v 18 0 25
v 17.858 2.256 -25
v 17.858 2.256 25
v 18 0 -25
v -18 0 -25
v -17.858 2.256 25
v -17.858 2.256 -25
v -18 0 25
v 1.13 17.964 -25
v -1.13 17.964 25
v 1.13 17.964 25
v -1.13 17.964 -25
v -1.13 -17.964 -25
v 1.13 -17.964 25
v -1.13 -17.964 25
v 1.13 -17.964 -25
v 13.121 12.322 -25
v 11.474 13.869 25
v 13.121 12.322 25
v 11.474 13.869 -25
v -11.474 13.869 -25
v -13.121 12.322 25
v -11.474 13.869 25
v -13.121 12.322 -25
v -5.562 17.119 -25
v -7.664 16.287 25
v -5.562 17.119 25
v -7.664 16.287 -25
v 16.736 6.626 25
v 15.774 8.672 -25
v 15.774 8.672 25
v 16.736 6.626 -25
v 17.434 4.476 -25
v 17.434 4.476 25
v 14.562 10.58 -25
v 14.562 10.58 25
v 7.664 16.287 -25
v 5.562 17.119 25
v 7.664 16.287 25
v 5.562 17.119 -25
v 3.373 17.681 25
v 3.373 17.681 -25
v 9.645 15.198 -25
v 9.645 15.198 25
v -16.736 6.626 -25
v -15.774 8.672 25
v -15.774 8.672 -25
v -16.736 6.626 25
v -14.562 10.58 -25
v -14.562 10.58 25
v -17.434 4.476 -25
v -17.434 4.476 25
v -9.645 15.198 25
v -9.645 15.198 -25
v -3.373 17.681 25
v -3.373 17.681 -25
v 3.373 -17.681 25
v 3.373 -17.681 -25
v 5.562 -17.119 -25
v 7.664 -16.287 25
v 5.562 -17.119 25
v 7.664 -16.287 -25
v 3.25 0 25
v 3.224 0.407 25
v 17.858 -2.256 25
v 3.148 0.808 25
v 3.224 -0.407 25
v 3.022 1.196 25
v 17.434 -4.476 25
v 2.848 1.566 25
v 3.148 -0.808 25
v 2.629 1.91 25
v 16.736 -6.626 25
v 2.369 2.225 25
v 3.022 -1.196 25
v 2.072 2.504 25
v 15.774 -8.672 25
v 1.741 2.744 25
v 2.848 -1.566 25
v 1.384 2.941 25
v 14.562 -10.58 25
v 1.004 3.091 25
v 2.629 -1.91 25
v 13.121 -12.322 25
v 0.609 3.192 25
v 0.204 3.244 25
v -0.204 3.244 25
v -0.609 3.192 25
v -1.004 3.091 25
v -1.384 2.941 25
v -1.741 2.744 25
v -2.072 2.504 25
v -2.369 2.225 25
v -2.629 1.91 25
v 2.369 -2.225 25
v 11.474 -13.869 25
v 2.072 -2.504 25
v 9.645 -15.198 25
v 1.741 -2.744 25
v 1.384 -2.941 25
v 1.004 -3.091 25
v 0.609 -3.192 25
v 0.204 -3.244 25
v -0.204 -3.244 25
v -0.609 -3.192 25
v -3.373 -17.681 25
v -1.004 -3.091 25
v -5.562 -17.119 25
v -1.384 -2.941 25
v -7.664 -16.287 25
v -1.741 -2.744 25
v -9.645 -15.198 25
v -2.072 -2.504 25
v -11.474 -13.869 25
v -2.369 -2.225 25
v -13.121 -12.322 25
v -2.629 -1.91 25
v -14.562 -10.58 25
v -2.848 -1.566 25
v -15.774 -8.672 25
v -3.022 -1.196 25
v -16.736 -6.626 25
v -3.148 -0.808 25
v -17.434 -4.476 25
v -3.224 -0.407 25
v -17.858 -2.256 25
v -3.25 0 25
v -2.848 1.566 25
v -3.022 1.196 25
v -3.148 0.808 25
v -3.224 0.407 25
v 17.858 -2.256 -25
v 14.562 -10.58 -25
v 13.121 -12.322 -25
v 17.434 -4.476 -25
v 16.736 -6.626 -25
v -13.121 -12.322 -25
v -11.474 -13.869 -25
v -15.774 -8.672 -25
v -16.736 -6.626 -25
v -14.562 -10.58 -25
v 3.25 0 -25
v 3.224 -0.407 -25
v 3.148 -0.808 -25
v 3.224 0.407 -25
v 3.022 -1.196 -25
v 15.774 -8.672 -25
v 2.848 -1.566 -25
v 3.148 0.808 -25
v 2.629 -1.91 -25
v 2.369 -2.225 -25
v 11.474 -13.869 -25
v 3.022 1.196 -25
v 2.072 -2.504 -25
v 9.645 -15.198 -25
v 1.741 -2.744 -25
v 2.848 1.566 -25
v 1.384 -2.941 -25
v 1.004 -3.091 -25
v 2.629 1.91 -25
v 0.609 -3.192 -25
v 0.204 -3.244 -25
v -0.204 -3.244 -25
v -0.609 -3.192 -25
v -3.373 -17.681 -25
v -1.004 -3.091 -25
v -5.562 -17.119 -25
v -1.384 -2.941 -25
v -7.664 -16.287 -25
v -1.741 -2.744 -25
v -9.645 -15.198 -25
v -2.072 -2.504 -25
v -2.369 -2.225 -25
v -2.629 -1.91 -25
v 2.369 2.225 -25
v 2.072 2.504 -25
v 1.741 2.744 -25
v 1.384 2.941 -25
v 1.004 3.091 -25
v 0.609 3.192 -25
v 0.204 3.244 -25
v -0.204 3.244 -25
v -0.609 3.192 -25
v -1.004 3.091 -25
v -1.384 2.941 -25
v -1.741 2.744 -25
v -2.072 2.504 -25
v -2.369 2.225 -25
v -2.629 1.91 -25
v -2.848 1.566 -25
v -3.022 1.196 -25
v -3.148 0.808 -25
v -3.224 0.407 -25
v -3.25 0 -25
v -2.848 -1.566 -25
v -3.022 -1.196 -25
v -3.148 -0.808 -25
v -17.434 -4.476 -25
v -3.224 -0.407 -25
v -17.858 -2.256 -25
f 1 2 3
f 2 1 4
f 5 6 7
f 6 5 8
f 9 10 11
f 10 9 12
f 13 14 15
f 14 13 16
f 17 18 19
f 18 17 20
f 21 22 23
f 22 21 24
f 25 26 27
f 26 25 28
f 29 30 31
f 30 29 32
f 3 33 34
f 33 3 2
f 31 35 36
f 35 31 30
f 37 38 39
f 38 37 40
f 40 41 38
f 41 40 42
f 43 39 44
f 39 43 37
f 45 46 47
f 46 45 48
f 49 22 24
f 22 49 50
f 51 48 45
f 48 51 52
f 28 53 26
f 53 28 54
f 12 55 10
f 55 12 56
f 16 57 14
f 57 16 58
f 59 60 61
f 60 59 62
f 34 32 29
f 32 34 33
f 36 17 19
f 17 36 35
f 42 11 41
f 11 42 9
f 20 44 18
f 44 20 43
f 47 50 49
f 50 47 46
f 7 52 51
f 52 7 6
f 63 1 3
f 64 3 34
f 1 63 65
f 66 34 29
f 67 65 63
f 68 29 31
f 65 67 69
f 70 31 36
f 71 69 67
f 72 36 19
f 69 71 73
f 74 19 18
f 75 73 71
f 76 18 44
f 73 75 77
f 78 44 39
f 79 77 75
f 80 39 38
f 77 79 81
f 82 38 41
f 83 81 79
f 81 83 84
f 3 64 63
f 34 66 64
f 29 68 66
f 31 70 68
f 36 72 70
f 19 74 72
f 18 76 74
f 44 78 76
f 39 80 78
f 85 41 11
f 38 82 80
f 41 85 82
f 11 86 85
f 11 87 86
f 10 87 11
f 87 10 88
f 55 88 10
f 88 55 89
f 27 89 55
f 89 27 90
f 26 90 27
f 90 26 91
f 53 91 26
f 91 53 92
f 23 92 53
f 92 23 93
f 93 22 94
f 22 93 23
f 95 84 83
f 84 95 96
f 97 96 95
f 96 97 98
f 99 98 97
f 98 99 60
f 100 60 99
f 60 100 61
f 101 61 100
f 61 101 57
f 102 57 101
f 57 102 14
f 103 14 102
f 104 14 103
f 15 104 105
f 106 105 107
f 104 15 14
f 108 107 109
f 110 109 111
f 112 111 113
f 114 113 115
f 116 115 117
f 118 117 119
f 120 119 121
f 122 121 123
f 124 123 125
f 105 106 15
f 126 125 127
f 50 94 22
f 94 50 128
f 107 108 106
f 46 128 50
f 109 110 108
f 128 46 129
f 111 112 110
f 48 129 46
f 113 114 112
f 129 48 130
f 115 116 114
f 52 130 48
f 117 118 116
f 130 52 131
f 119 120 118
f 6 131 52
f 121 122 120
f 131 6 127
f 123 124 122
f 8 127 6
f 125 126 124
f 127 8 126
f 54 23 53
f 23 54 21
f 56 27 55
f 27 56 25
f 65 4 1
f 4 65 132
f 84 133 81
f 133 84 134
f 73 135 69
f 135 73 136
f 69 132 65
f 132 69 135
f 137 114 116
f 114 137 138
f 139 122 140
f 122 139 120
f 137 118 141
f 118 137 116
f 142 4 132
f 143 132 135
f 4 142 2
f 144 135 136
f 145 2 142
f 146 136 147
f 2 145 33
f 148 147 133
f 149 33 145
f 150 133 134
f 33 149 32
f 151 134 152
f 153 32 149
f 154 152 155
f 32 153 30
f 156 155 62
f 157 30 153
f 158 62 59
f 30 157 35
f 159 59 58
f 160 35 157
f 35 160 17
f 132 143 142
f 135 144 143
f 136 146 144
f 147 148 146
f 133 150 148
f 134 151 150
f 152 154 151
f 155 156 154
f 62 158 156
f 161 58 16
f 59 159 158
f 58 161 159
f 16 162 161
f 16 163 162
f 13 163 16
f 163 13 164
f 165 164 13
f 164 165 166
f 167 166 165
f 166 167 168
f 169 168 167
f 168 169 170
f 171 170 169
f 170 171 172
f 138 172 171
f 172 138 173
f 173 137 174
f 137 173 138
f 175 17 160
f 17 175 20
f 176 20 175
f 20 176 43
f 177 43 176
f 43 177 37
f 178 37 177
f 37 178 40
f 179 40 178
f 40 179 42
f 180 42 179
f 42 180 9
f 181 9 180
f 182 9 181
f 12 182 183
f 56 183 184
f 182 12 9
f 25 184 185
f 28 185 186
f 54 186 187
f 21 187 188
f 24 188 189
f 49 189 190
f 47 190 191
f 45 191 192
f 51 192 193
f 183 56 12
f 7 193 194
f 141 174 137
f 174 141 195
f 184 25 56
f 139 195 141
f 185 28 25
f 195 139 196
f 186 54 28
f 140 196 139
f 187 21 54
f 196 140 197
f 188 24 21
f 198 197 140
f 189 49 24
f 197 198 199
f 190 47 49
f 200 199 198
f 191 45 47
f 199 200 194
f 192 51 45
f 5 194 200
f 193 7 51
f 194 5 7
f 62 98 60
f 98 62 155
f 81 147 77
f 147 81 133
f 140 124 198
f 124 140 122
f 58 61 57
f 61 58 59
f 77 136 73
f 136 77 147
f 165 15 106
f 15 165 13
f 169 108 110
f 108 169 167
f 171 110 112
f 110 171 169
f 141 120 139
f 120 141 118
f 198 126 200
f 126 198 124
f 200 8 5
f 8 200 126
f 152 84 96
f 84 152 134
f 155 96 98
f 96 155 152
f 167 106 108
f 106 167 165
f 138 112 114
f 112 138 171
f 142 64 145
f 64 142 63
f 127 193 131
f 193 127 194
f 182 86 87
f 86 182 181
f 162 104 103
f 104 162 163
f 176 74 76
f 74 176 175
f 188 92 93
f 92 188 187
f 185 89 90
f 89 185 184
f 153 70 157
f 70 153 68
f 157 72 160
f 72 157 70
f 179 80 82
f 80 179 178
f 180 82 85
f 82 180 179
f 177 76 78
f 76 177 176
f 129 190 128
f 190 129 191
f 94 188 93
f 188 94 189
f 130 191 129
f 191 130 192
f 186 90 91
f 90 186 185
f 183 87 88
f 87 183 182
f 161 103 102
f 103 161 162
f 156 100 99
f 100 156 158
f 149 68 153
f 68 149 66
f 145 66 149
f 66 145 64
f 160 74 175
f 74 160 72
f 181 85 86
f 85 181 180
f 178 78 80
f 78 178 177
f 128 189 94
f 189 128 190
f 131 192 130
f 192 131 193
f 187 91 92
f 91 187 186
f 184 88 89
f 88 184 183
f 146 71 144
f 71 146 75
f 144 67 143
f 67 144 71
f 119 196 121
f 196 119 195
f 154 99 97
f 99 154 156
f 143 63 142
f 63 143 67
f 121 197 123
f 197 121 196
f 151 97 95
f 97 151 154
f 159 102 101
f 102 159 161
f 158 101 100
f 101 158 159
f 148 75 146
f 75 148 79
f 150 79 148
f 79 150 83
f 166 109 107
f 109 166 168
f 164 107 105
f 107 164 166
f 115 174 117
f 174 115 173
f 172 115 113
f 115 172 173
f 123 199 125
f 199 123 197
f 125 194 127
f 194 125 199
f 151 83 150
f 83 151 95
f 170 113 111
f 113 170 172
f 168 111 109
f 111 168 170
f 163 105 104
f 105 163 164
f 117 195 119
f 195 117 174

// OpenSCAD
$fn = 50;


difference() {
	union() {
		translate(v = [0, 0, -25.0000000000]) {
			cylinder(h = 50, r = 18.0000000000);
		}
	}
	union() {
		translate(v = [0, 0, -100.0000000000]) {
			cylinder(h = 200, r = 3.2500000000);
		}
	}
}
